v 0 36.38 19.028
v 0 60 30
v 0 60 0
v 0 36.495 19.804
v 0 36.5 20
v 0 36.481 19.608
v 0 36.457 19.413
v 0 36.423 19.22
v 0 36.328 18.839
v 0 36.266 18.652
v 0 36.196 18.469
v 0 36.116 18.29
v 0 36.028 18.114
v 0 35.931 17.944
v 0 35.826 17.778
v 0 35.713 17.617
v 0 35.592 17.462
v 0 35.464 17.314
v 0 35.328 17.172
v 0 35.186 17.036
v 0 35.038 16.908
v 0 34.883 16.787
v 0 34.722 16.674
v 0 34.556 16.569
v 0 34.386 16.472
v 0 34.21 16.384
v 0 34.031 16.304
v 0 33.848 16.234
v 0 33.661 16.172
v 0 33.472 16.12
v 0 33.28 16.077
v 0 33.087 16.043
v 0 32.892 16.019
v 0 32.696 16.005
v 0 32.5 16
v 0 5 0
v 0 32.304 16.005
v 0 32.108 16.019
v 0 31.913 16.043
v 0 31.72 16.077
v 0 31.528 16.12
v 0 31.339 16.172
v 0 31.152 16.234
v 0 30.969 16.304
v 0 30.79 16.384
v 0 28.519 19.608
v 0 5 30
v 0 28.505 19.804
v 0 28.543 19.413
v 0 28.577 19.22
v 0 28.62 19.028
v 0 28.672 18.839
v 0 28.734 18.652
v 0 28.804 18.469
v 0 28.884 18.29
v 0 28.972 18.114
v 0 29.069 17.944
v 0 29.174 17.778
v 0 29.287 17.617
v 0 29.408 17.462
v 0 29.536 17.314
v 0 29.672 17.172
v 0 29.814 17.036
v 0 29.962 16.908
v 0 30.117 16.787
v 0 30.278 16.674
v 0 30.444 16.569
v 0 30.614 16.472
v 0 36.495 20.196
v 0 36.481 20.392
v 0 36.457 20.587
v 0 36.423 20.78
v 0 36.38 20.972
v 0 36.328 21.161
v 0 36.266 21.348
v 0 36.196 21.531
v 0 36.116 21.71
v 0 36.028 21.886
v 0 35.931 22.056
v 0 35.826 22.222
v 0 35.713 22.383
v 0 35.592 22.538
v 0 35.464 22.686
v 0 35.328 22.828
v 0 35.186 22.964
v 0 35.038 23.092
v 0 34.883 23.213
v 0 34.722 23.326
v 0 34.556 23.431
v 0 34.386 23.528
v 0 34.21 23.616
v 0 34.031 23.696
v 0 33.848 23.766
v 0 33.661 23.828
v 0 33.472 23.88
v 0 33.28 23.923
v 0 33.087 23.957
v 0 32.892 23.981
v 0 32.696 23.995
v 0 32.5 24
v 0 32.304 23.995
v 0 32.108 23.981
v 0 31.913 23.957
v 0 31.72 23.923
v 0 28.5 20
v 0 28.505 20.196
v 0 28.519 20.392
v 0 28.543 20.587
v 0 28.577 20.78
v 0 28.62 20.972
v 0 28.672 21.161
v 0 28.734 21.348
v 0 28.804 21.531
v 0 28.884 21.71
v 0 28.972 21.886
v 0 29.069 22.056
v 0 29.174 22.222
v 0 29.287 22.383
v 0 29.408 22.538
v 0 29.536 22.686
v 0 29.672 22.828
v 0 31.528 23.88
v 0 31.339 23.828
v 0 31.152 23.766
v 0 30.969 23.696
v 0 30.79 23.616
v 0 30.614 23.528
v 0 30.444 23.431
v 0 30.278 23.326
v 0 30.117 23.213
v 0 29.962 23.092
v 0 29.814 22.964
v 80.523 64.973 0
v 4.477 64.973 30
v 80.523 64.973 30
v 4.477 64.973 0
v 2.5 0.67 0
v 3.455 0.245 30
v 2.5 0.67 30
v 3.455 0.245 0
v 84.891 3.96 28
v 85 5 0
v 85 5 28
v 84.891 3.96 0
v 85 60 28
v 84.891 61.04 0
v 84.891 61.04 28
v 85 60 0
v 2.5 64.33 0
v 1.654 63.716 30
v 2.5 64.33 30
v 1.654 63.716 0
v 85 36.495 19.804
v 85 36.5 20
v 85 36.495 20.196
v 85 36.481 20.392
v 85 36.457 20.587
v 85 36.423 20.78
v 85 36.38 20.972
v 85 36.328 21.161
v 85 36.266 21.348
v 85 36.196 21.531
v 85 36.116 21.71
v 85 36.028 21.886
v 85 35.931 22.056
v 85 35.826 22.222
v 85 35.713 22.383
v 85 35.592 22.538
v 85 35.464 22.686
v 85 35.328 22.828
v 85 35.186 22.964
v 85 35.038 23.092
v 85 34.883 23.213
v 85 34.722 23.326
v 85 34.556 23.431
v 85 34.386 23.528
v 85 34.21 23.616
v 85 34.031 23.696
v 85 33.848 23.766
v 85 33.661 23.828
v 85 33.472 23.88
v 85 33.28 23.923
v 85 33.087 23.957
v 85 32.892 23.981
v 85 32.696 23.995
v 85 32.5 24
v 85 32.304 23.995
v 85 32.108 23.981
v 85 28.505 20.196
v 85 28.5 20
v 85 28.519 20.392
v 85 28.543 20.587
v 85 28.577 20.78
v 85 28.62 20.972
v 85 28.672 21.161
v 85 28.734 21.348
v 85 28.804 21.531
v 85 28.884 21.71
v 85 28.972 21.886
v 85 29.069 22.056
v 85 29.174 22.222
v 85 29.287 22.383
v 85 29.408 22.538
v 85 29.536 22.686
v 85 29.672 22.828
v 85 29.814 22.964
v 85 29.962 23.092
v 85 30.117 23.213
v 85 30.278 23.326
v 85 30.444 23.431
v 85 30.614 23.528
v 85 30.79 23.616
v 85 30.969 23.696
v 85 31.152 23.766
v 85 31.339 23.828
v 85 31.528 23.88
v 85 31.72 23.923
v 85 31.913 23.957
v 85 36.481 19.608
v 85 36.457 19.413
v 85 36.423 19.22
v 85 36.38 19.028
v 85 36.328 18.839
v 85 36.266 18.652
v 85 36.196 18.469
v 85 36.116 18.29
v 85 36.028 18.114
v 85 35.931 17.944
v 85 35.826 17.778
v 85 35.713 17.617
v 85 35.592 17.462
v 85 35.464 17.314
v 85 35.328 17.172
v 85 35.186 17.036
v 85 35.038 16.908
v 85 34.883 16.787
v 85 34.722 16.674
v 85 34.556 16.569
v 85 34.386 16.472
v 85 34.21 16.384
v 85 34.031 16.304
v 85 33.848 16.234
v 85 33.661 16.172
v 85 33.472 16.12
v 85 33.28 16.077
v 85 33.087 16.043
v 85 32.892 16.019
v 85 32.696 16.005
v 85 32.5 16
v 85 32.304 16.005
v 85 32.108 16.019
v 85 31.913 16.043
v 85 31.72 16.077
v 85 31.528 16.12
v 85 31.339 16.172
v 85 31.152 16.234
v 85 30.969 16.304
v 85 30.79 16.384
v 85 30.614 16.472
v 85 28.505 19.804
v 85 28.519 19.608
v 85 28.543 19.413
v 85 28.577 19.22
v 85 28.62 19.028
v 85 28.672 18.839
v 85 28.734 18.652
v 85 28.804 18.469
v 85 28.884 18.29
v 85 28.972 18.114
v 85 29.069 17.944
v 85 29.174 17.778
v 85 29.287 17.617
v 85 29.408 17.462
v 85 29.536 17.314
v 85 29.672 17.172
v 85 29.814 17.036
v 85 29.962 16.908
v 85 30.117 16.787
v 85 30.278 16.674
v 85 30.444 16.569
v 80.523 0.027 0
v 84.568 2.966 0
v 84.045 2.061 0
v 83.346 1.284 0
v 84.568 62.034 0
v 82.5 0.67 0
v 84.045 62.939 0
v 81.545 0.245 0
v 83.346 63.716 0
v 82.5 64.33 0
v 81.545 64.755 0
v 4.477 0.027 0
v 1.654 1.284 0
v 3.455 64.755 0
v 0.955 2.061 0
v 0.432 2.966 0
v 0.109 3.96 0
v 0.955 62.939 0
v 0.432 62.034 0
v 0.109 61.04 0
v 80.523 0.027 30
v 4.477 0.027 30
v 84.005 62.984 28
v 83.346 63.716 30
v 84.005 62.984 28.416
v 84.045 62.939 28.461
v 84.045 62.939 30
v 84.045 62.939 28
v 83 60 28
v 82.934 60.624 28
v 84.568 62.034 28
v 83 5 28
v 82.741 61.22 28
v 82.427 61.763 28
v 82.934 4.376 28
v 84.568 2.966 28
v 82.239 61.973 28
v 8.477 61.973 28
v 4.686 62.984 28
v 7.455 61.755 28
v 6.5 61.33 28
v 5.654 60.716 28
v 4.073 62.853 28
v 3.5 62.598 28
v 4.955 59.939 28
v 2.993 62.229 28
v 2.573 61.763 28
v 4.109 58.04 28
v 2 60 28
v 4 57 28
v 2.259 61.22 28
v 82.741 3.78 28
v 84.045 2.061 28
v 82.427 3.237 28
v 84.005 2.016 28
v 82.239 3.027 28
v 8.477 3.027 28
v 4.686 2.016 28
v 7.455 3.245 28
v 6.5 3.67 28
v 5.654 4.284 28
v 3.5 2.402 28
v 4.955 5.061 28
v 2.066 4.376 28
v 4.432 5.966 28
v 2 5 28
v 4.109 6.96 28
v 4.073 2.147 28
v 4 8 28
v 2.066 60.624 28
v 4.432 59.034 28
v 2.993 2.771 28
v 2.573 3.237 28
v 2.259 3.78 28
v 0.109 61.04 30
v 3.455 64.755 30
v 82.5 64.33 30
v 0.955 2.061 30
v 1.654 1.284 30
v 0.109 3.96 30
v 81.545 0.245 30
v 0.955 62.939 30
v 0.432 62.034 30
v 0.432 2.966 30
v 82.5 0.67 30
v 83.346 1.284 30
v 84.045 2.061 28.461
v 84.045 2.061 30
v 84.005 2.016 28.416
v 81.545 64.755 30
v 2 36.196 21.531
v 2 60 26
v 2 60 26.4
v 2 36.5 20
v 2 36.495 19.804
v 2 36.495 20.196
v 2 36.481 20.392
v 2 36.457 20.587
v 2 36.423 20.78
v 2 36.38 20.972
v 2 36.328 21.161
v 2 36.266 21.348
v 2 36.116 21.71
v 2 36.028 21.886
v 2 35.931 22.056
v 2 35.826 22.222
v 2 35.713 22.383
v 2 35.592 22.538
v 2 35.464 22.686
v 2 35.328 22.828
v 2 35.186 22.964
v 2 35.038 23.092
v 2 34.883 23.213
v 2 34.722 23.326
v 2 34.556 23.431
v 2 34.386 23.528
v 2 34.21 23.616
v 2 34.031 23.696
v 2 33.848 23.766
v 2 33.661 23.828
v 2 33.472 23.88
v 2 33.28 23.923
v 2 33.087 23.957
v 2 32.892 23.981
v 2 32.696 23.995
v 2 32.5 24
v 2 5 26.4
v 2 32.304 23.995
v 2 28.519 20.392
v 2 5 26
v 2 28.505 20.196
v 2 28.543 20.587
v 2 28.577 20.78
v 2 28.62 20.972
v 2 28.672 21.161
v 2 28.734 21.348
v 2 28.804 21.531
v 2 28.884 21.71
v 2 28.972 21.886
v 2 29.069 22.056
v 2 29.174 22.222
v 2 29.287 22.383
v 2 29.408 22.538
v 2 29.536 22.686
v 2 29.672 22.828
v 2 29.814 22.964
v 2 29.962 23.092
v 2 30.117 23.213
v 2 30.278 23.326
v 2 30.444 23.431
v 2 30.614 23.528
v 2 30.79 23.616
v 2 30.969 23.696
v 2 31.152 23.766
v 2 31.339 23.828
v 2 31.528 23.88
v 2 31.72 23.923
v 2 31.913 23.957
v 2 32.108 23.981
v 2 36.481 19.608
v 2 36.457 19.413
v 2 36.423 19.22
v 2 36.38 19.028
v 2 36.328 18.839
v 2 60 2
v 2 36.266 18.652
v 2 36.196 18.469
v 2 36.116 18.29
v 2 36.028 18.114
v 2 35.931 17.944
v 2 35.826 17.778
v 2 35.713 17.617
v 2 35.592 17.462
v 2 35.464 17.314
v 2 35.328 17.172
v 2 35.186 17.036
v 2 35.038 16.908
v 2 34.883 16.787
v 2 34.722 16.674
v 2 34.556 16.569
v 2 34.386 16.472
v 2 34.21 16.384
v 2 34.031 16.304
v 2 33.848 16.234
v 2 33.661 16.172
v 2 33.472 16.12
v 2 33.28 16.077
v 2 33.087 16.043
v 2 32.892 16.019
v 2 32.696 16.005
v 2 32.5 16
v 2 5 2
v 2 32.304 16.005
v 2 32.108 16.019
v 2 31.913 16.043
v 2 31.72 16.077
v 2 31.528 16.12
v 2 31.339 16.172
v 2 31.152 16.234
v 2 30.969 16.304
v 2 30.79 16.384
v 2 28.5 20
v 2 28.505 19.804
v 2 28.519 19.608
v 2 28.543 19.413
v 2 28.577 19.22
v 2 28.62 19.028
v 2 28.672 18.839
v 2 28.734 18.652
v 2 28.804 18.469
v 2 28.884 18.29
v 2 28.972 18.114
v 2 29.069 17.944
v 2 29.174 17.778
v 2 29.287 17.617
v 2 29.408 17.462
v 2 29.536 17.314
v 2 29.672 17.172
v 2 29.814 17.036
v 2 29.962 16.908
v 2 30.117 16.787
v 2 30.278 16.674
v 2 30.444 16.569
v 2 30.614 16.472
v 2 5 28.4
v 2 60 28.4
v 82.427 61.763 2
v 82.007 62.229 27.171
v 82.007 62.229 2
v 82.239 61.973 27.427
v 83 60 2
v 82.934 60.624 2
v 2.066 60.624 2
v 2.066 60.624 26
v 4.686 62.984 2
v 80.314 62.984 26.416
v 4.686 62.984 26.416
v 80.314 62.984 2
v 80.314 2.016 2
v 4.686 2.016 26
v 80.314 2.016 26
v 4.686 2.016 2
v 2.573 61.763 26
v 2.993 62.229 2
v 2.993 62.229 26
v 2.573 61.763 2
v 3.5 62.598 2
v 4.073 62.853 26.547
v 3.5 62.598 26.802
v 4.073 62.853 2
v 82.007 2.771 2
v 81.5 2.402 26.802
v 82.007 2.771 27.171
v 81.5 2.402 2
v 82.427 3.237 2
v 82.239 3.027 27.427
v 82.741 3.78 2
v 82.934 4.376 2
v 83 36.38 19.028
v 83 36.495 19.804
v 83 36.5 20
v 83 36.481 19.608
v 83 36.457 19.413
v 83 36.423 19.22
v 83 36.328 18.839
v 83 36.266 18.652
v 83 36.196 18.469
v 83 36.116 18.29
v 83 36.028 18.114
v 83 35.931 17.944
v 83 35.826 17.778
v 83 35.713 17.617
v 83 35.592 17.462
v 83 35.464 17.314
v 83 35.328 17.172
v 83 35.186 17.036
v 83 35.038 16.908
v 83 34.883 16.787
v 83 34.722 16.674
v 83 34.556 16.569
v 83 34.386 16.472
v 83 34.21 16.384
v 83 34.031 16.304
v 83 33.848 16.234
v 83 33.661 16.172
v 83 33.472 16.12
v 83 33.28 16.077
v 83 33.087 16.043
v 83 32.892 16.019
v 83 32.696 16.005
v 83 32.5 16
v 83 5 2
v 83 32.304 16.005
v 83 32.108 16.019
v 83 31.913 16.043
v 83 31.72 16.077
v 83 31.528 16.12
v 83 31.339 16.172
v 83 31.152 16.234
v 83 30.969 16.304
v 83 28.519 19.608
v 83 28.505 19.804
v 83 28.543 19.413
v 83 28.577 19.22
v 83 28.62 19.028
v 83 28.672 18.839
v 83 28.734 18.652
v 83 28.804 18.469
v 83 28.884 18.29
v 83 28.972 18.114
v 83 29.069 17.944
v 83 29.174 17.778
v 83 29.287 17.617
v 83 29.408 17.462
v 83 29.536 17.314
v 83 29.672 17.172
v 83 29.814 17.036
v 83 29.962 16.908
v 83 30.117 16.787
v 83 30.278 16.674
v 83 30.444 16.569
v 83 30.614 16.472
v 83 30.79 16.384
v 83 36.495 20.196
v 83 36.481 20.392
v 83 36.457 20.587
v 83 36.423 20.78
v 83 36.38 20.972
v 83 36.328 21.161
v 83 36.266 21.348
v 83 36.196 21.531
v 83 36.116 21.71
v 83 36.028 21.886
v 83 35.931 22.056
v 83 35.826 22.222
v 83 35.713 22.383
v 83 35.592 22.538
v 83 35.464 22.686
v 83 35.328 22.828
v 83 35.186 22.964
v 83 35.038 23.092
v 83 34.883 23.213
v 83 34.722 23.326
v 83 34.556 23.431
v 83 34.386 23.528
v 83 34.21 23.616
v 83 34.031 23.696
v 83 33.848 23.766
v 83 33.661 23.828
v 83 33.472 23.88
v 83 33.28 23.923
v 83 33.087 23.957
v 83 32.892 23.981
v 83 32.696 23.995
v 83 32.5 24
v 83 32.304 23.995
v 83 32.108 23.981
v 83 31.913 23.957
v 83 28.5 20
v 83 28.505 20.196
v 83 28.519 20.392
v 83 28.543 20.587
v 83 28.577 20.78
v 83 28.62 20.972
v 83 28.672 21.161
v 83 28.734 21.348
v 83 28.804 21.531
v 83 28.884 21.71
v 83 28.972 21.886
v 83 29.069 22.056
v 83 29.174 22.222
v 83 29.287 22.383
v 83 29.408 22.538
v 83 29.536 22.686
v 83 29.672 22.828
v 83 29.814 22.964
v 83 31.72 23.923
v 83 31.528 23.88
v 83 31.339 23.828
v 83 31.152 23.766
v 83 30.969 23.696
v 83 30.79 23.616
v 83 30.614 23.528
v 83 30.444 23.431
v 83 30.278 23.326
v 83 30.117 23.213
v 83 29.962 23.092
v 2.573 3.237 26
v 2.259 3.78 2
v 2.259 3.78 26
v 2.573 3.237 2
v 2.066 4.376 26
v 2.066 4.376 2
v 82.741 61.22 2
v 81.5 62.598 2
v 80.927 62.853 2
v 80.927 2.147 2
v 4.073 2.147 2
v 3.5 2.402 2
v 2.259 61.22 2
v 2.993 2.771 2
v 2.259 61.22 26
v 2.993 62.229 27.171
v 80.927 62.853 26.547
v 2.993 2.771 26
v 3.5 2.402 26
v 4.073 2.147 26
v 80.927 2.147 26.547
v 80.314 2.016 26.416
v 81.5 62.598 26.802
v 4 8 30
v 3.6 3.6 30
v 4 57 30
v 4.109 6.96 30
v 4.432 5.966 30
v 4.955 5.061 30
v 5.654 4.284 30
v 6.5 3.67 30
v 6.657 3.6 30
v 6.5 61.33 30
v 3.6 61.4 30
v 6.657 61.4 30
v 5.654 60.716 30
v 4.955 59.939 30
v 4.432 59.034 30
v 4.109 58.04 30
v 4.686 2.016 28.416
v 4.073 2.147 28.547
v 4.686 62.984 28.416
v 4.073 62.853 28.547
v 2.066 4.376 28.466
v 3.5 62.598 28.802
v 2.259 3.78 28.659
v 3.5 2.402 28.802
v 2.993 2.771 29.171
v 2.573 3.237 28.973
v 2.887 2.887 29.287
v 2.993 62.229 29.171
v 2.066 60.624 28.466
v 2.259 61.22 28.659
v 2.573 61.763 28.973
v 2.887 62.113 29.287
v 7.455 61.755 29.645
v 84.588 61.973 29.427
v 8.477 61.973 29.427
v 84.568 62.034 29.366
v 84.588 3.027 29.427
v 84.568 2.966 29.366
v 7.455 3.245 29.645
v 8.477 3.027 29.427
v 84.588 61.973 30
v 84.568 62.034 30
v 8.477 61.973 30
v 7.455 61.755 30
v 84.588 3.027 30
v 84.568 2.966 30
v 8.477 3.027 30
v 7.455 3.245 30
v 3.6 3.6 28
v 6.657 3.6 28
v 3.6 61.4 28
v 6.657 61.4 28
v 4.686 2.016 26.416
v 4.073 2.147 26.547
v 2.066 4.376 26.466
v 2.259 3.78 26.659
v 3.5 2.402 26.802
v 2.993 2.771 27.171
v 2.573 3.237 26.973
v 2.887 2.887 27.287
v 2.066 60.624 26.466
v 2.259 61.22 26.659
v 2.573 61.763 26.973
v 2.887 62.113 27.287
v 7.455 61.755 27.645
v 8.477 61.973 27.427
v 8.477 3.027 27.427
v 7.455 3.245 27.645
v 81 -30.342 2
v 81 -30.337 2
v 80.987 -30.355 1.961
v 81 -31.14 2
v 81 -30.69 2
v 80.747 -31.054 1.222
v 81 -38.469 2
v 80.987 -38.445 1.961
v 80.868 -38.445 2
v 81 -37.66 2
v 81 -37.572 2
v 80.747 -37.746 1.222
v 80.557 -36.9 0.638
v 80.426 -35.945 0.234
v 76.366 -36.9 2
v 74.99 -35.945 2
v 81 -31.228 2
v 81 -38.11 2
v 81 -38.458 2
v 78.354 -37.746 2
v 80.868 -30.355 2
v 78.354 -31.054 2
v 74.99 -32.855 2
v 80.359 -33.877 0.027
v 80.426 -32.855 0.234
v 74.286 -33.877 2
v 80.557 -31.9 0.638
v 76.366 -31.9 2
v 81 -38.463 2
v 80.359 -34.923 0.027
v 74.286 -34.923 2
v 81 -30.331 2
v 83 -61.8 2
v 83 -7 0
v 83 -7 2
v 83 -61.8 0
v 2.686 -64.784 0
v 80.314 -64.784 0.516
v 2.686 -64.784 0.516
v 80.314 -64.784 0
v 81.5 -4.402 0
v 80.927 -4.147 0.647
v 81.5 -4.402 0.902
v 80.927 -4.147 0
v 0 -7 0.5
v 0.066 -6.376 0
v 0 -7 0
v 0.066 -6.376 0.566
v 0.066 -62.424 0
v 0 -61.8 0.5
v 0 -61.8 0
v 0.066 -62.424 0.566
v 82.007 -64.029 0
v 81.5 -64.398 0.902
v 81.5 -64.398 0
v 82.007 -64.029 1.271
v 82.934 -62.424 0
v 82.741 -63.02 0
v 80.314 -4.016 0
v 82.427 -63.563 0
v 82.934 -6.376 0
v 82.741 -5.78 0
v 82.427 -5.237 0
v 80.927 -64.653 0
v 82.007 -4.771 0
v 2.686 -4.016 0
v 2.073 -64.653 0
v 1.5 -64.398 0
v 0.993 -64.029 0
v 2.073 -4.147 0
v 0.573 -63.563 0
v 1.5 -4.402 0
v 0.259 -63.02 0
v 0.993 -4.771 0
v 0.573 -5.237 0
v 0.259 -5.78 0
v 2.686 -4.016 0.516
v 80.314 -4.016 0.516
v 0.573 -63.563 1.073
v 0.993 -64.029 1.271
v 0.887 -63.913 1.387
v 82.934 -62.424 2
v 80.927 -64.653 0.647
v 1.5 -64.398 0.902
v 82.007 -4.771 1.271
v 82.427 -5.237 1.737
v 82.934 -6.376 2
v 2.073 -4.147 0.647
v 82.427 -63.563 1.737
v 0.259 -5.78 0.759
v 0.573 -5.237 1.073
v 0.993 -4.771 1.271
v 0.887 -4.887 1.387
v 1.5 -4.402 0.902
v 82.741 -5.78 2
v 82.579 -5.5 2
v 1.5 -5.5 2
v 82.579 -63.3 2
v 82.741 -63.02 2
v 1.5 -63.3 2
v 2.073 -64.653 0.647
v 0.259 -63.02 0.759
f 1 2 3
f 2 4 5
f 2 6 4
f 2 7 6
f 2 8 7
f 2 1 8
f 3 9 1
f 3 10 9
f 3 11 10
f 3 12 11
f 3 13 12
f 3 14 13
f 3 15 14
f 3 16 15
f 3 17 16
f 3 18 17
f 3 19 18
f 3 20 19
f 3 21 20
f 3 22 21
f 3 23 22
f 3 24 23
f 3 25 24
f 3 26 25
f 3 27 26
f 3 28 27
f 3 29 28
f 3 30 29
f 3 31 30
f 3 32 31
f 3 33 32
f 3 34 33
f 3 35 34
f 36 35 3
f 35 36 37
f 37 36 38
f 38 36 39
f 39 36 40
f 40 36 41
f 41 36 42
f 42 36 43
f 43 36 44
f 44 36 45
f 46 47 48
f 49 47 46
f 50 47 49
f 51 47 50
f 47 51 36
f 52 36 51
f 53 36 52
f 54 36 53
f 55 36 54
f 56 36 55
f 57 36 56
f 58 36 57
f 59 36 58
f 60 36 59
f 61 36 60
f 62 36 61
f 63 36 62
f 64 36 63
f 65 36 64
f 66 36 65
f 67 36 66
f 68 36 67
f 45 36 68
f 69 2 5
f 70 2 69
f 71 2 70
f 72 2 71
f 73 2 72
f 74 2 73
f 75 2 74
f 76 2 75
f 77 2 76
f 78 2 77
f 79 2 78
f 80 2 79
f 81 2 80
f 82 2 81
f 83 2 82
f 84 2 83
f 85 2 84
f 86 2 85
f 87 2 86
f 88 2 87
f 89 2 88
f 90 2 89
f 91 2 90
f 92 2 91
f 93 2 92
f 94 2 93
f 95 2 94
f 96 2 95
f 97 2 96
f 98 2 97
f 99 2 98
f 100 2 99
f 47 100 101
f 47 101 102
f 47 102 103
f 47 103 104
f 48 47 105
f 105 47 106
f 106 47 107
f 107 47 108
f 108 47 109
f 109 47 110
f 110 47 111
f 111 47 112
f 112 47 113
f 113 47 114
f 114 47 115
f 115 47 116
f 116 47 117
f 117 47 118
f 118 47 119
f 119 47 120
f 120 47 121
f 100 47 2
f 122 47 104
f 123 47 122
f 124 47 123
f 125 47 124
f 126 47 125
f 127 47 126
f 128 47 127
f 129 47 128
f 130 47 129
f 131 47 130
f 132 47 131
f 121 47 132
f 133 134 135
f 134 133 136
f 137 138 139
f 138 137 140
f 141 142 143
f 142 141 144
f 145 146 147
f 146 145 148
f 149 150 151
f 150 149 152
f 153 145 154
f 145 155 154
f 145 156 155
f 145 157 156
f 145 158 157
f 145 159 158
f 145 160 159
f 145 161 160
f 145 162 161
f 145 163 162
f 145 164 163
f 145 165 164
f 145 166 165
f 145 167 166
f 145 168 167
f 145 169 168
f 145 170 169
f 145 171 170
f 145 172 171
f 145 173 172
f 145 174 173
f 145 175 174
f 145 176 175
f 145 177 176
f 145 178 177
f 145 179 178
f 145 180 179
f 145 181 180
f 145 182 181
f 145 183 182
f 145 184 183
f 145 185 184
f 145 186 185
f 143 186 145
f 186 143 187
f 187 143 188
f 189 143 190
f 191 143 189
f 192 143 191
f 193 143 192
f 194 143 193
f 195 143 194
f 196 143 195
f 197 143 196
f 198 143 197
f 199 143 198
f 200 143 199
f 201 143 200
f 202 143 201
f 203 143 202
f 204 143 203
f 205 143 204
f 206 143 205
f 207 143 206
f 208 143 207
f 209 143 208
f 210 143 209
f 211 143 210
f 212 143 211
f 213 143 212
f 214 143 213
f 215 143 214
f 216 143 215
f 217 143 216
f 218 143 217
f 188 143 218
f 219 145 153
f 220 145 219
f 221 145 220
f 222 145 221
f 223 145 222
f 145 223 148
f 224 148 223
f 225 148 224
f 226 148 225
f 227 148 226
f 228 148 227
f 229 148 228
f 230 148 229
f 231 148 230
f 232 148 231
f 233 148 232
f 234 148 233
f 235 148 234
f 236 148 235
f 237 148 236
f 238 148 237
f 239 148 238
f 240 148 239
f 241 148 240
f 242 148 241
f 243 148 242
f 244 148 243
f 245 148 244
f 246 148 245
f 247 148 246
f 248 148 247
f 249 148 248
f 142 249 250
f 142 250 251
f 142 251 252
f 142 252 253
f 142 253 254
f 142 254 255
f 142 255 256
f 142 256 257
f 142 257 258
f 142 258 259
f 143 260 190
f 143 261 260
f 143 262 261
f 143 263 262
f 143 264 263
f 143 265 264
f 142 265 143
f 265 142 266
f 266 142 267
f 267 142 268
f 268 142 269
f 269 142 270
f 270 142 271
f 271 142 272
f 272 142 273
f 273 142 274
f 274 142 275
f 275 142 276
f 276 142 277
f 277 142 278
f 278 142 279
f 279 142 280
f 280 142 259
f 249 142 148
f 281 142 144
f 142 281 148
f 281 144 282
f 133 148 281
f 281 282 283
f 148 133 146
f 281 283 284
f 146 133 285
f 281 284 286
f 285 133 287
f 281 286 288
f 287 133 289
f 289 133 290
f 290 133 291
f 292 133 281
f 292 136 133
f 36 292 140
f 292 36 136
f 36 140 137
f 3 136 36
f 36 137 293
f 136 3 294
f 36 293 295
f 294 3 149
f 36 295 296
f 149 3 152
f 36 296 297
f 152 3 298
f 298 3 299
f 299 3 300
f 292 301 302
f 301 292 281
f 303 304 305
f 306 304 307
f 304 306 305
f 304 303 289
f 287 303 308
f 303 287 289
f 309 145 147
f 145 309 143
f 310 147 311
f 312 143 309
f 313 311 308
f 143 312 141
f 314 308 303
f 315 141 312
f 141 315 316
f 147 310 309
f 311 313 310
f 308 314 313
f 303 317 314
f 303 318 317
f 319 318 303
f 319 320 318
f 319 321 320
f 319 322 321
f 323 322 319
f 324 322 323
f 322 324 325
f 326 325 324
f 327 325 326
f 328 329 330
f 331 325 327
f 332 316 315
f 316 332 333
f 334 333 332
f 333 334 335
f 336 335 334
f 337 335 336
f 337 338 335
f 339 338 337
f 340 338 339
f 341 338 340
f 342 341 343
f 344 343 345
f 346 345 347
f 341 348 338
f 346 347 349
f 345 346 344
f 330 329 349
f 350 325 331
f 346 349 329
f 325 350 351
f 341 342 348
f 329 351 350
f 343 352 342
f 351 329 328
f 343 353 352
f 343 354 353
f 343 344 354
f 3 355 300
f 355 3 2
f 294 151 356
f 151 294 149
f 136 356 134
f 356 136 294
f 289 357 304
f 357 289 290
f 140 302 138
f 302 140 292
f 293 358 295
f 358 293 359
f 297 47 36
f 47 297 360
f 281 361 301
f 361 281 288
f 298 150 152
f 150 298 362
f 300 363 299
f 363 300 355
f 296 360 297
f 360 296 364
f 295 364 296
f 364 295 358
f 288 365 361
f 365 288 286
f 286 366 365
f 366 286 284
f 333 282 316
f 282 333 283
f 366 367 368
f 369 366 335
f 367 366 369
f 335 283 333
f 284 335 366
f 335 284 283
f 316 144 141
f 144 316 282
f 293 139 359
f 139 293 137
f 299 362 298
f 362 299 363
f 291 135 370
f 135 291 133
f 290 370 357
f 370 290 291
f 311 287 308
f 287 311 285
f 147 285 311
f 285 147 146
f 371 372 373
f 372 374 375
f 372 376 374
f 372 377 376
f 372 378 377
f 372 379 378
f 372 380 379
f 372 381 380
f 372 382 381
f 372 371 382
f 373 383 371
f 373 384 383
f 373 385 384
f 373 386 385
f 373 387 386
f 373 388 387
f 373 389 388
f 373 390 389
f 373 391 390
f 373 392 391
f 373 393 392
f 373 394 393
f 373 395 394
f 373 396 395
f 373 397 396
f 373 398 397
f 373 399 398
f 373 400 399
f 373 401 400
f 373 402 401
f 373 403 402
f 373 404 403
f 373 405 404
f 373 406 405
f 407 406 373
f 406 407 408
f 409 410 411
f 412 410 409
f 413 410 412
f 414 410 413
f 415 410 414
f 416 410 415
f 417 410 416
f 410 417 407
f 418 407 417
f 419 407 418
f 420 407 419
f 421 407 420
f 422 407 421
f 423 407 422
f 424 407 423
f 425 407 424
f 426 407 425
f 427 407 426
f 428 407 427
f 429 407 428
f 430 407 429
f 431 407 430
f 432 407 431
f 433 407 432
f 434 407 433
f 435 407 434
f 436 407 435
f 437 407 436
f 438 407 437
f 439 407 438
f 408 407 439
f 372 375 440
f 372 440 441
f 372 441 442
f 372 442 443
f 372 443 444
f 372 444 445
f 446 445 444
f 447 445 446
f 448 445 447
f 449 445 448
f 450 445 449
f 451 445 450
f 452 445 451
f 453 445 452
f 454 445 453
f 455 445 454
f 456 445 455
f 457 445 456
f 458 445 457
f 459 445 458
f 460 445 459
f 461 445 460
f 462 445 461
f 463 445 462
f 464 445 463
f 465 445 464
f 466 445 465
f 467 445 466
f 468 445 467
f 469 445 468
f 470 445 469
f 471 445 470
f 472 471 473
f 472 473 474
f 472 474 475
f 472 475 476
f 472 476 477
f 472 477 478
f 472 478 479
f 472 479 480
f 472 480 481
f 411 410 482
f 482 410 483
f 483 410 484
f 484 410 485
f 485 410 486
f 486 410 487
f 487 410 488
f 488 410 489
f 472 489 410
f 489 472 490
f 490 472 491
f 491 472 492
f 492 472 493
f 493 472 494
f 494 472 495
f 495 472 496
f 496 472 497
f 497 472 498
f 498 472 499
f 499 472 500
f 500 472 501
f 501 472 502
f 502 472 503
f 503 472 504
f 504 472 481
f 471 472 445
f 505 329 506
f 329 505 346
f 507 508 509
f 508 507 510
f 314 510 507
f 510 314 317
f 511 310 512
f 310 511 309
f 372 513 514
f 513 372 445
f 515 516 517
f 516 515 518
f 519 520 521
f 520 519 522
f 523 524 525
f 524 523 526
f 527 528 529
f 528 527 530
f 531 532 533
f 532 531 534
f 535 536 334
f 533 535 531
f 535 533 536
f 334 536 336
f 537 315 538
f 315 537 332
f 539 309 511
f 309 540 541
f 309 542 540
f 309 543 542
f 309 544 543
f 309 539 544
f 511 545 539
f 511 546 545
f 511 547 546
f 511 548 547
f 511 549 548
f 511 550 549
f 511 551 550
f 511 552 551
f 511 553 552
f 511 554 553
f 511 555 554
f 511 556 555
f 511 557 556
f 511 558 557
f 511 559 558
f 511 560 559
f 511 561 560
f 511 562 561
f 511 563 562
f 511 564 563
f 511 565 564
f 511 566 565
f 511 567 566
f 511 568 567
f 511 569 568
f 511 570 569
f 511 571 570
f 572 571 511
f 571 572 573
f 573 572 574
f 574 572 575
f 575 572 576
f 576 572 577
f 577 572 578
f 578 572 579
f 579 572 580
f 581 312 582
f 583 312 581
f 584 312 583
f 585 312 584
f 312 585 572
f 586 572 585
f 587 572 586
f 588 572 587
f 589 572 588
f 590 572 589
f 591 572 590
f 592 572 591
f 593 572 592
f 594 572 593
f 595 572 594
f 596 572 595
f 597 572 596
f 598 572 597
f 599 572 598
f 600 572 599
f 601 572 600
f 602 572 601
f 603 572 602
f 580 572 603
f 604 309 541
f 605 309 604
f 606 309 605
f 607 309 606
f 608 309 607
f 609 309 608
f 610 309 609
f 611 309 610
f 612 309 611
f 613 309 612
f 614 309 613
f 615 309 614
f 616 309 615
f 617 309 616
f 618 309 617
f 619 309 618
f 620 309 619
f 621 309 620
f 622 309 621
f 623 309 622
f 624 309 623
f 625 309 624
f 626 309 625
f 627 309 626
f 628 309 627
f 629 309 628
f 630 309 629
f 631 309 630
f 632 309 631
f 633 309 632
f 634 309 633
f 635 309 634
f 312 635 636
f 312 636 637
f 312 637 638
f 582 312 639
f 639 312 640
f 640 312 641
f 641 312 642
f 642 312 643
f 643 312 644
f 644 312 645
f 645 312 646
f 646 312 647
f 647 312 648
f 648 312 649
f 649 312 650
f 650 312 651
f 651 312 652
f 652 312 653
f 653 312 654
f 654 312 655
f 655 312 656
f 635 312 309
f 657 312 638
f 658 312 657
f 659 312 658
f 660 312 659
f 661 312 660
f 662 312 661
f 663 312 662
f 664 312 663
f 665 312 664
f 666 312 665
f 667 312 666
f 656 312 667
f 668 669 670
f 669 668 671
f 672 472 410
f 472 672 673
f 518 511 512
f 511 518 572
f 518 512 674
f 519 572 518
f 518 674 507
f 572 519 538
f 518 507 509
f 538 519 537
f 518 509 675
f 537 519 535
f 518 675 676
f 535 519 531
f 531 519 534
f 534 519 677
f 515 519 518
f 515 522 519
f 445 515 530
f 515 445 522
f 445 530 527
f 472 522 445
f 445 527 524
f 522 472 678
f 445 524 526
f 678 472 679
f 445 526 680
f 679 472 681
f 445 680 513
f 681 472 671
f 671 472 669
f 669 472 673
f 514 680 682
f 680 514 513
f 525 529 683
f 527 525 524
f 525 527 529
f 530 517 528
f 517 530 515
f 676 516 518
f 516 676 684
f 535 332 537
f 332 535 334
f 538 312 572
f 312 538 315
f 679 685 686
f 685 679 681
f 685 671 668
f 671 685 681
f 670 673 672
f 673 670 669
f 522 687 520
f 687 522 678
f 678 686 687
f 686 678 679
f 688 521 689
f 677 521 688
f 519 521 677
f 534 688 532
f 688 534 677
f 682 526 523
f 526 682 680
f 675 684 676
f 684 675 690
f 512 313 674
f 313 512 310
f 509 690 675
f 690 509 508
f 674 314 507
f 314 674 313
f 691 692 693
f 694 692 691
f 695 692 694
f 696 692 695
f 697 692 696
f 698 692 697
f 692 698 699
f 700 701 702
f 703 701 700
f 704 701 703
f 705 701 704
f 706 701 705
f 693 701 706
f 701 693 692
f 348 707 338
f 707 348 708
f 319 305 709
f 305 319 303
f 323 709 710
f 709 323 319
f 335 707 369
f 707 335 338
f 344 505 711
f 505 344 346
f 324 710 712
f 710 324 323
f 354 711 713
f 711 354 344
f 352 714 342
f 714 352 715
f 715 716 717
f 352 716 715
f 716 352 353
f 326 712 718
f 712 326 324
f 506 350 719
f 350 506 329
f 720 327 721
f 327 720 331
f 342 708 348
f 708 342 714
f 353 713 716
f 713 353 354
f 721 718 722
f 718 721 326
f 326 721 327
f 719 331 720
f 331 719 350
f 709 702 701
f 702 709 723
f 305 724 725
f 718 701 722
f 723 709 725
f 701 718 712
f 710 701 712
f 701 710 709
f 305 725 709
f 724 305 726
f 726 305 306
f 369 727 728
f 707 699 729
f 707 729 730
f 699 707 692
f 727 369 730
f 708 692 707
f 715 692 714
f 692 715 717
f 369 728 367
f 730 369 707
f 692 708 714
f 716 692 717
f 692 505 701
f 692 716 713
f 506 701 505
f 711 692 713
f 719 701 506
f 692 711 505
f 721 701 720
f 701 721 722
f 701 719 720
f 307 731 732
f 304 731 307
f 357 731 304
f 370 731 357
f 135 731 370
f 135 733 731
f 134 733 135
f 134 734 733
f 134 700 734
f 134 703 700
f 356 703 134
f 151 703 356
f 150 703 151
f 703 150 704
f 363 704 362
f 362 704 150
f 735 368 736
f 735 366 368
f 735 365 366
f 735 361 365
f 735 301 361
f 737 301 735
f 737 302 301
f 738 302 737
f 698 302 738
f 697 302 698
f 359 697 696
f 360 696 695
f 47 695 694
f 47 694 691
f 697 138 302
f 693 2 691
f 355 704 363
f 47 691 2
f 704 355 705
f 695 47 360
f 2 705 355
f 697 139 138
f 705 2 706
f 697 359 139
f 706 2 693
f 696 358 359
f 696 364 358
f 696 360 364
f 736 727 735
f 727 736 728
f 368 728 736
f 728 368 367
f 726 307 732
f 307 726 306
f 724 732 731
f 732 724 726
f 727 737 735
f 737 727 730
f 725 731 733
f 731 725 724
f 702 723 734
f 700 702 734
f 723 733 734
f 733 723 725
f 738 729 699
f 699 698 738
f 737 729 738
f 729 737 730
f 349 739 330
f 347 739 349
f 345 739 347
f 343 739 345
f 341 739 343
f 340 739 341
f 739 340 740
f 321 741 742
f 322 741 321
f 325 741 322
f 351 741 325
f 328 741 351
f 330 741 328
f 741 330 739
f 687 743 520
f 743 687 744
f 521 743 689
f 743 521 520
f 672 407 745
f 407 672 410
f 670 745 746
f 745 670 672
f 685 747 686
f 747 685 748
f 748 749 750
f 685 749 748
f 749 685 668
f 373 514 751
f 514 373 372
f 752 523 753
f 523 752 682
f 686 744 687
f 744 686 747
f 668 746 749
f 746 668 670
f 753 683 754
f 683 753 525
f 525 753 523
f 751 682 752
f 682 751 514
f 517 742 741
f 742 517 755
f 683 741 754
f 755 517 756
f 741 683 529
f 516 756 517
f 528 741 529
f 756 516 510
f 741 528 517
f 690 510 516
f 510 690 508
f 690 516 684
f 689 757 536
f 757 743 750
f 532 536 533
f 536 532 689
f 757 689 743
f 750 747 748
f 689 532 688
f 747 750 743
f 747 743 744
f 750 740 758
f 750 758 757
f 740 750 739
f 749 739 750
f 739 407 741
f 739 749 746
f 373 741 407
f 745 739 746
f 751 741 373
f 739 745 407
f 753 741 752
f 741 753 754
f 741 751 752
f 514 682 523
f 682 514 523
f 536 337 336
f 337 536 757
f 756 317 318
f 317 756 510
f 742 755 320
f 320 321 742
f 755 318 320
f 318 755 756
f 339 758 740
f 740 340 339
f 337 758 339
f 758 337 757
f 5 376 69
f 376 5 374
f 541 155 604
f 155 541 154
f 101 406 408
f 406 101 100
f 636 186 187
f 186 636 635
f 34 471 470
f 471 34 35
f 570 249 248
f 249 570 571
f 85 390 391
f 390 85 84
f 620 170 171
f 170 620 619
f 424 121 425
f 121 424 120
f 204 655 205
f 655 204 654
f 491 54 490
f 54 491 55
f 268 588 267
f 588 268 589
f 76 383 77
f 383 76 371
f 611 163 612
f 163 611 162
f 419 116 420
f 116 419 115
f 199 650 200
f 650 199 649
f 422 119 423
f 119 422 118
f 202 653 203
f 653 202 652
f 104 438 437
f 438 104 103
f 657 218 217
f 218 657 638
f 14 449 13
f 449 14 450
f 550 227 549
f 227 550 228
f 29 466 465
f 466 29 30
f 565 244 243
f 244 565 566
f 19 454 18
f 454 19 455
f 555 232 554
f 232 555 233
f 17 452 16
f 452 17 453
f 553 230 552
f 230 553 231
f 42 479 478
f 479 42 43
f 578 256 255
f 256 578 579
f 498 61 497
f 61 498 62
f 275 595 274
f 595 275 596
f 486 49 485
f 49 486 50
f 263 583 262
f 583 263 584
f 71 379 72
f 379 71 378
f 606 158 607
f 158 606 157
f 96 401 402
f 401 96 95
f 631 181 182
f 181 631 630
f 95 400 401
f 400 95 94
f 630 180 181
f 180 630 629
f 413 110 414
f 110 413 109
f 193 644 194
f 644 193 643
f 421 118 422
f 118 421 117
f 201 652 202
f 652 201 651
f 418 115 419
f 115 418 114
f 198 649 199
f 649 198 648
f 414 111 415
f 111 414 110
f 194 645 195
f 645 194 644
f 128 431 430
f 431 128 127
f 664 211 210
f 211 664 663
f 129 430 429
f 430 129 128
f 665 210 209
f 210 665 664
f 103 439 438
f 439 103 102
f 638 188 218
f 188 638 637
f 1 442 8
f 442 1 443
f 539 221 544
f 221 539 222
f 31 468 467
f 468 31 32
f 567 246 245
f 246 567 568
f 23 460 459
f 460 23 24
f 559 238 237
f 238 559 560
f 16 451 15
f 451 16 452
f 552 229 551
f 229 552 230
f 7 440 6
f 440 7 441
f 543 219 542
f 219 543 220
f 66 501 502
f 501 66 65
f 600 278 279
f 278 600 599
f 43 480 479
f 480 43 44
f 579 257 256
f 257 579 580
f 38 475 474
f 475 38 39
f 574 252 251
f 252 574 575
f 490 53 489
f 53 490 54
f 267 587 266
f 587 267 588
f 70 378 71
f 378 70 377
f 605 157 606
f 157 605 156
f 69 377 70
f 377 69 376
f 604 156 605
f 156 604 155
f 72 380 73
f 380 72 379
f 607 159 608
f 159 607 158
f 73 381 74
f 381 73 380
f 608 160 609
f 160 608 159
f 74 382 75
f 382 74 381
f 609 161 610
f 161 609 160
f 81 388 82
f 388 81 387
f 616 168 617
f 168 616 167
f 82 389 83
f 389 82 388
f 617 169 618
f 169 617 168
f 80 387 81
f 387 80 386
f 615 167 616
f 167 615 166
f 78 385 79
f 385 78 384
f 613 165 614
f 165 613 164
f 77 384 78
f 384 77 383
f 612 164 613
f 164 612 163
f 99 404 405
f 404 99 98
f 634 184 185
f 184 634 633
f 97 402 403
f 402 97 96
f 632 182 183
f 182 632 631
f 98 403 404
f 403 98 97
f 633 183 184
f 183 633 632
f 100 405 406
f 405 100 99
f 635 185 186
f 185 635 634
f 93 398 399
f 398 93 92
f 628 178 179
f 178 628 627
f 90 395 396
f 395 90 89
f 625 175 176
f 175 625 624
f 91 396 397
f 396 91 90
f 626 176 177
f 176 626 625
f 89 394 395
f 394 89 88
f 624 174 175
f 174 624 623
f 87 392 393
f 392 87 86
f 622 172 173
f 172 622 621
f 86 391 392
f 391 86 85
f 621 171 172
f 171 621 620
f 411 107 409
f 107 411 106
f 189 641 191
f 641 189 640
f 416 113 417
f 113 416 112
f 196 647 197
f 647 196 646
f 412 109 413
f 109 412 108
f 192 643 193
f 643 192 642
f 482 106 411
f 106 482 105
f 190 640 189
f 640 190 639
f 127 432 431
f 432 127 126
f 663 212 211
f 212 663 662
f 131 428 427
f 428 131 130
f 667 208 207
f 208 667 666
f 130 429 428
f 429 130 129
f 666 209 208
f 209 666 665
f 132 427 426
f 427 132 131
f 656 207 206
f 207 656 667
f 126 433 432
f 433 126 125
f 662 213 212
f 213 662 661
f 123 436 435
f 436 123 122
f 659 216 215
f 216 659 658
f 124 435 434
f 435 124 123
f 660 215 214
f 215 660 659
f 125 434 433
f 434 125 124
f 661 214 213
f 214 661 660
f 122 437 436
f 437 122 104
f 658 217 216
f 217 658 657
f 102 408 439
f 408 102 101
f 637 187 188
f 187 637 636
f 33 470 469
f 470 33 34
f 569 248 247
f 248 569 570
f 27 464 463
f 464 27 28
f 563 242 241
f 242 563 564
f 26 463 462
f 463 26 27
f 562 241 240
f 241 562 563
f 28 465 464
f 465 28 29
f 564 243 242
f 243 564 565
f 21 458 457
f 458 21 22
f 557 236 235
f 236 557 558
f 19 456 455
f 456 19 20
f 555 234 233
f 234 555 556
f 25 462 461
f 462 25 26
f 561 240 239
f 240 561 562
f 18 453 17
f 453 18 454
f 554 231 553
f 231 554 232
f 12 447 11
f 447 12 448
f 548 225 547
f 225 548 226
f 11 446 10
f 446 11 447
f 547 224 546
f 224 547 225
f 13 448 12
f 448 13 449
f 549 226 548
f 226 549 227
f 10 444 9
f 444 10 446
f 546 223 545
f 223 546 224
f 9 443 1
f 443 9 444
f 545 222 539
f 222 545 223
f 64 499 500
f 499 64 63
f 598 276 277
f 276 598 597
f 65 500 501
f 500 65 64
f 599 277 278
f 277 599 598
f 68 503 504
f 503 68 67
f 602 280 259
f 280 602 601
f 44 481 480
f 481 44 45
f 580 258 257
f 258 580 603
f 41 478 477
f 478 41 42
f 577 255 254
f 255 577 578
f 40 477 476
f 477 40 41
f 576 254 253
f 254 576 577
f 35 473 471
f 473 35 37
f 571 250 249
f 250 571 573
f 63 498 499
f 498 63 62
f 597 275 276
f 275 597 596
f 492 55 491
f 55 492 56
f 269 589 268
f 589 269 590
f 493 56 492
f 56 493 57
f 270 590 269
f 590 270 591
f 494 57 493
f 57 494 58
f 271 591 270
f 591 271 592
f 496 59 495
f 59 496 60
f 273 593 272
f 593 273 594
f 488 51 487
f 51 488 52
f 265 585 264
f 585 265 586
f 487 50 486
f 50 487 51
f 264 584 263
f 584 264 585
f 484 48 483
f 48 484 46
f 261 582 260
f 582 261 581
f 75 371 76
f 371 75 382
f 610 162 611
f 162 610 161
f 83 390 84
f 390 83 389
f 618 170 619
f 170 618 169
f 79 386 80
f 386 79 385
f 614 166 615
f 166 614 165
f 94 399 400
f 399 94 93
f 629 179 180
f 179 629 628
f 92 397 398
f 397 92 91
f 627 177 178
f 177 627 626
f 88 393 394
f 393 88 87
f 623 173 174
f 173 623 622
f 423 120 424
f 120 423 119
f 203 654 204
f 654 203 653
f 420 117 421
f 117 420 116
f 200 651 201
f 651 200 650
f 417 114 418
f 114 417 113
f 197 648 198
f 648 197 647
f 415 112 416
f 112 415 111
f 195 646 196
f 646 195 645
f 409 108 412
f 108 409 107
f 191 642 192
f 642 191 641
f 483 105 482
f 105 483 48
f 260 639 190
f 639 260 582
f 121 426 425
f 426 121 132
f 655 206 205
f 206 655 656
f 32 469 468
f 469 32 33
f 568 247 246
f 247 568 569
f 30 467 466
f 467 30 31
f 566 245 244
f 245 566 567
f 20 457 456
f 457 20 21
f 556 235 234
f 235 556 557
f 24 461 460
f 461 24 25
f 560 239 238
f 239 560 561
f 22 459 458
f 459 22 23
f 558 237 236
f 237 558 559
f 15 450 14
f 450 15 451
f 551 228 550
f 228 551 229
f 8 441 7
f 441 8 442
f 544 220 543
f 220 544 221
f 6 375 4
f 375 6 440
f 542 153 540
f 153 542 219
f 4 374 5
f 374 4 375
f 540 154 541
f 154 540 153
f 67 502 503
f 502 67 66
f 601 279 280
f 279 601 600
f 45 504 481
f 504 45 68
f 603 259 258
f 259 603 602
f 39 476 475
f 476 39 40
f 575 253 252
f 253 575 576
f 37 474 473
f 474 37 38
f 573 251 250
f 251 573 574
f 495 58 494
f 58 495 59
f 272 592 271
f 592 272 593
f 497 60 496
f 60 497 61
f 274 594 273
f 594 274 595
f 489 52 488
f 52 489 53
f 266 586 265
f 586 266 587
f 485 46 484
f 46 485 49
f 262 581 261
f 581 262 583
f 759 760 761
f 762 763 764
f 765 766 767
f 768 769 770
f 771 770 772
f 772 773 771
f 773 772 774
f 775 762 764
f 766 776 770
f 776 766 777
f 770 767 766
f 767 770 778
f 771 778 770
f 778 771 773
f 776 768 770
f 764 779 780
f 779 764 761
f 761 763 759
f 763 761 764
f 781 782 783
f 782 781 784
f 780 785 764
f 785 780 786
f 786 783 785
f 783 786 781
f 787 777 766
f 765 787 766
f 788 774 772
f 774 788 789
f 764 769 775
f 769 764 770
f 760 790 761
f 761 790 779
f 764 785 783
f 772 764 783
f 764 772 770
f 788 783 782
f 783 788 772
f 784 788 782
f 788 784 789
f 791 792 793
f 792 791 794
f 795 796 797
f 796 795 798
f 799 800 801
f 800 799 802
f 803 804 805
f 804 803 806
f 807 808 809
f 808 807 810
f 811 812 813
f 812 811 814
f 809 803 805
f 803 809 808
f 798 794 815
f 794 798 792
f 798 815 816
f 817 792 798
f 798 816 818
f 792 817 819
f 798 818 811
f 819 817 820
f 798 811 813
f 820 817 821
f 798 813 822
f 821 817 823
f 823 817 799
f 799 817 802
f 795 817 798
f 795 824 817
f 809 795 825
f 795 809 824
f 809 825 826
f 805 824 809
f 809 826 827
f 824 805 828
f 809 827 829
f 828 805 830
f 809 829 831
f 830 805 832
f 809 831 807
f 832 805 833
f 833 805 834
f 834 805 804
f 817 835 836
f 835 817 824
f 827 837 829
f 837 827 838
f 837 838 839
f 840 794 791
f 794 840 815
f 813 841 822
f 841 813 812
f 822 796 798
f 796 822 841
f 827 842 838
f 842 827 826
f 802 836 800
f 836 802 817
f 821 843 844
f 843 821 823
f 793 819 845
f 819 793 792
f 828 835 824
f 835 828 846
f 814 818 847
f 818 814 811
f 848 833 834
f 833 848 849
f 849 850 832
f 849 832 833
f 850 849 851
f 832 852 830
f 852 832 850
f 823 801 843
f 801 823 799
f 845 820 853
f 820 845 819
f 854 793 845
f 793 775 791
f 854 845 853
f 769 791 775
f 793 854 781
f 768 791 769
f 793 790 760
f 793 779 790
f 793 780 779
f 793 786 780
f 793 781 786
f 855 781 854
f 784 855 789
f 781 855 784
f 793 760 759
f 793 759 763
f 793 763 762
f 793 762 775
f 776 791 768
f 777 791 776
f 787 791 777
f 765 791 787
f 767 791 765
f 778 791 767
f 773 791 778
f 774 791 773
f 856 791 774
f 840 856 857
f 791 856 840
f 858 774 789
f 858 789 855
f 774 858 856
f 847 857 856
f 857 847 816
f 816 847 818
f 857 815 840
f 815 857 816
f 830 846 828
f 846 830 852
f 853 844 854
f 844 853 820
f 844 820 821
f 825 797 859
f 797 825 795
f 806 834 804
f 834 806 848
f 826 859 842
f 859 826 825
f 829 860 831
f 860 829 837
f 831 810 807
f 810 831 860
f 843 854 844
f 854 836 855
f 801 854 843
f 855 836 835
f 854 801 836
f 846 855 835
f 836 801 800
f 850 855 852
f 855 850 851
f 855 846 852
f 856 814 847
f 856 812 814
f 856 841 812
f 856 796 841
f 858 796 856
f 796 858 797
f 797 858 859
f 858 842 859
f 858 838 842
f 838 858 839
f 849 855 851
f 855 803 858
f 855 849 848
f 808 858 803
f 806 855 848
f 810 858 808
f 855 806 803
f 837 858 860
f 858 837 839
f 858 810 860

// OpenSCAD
itemsShown="both"; // [both,box,lid]
boxLength=85;
boxWidth=65;
boxHeight=30;
cornerRadius=5;
wallThickness=2;
bottomThickness=2;
lidThickness=2;
lidClearance=0.2;
lidEdgeThickness=0.5;
hLoch = 20;
dLoch = 8;
// Notch in the lid
withNotch=true;
$fn = 128;

difference() {
showBox();
rotate([90,0,90])
    translate([boxWidth/2,hLoch,-0.5])
        cylinder(boxLength+1,dLoch/2,dLoch/2);
}
showLid();

module showLid(){
	translate ([0, -2*wallThickness, 0]) 
	roundBoxLid(l=boxLength-wallThickness,
				w=boxWidth-2*wallThickness-lidClearance,
				h=lidThickness,
				et=lidEdgeThickness,
				r=cornerRadius-wallThickness,
				notch=withNotch);
}

module showBox(){
	round_box(l=boxLength,
			  w=boxWidth,
			  h=boxHeight,
			  bt=bottomThickness,
			  wt=wallThickness,
			  lt=lidThickness,
			  r=cornerRadius);
}

module round_box(l=40,w=30,h=30,bt=2,wt=2,lt=2,r=5,){
	difference() { 
		round_cube(l=l,w=w,h=h-lt,r=r);
		translate ([wt, wt, bt]) 
		round_cube(l=l-wt*2,w=w-wt*2,h=h,r=r-wt);
	}
	roundBoxRim();
	translate ([0, 0, -wt]) roundBoxRim();
}

module roundBoxRim(l=boxLength,
				   w=boxWidth,
				   h=boxHeight,
				   et=lidEdgeThickness,
				   r=cornerRadius,
				   wt=wallThickness,
				   lt=lidThickness){
	difference() { 
		translate ([0, 0, h-lt]) 
		round_cube(l=l,w=w,h=lt,r=r);
		translate ([wt+lt,wt+lt-et*2,h-lt-0.1]) 
		round_cube(l=l*2,w=w-2*(wt+lt)+4*et,h=lt+0.2,r=r-wt+lt);

		//subtract out a lid to make the ledge
		translate ([wt, w-wt, h-lt-0.1])
		roundBoxLid(l=l*2,w=w-2*wt,h=lt+0.1,wt=wt,t=lt,et=0.5,r=r-wt,notch=false);
	}
}

module roundBoxLid(l=40,w=30,h=3,wt=2,t=2,et=0.5,r=5,notch=true){
	translate ([l, 0, 0]) 
	rotate (a = [0, 0, 180]) 
	difference(){
		round_cube(l=l,w=w,h=h,t=t,r=r);

		translate ([-1, 0, et]) rotate (a = [45, 0, 0])  cube (size = [l+2, h*2, h*2]); 
		translate ([-1, w, et]) rotate (a = [45, 0, 0])  cube (size = [l+2, h*2, h*2]); 
		translate ([l, -1, et]) rotate (a = [45, 0, 90]) cube (size = [w+2, h*2, h*2]); 
		if (notch==true){
			translate([2,w/2,h+0.001]) thumbNotch(10/2,72,t);
		}
	}
}

module thumbNotch(
	thumbR=12/2,
	angle=72,
	notchHeight=2){

	size=10*thumbR;

	rotate([0,0,90])
	difference(){
		translate([0,
					(thumbR*sin(angle)-notchHeight)/tan(angle),
					 thumbR*sin(angle)-notchHeight])
		rotate([angle,0,0])
		cylinder(r=thumbR,h=size,$fn=30);

		translate([-size,-size,0])
		cube(size*2);
	}
}

module round_cube(l=40,w=30,h=20,r=5,$fn=30){
	hull(){ 
		translate ([r, r, 0]) cylinder (h = h, r=r);
		translate ([r, w-r, 0]) cylinder (h = h, r=r);
		translate ([l-r,w-r, 0]) cylinder (h = h, r=r);
		translate ([l-r, r, 0]) cylinder (h = h, r=r);
	}
}
